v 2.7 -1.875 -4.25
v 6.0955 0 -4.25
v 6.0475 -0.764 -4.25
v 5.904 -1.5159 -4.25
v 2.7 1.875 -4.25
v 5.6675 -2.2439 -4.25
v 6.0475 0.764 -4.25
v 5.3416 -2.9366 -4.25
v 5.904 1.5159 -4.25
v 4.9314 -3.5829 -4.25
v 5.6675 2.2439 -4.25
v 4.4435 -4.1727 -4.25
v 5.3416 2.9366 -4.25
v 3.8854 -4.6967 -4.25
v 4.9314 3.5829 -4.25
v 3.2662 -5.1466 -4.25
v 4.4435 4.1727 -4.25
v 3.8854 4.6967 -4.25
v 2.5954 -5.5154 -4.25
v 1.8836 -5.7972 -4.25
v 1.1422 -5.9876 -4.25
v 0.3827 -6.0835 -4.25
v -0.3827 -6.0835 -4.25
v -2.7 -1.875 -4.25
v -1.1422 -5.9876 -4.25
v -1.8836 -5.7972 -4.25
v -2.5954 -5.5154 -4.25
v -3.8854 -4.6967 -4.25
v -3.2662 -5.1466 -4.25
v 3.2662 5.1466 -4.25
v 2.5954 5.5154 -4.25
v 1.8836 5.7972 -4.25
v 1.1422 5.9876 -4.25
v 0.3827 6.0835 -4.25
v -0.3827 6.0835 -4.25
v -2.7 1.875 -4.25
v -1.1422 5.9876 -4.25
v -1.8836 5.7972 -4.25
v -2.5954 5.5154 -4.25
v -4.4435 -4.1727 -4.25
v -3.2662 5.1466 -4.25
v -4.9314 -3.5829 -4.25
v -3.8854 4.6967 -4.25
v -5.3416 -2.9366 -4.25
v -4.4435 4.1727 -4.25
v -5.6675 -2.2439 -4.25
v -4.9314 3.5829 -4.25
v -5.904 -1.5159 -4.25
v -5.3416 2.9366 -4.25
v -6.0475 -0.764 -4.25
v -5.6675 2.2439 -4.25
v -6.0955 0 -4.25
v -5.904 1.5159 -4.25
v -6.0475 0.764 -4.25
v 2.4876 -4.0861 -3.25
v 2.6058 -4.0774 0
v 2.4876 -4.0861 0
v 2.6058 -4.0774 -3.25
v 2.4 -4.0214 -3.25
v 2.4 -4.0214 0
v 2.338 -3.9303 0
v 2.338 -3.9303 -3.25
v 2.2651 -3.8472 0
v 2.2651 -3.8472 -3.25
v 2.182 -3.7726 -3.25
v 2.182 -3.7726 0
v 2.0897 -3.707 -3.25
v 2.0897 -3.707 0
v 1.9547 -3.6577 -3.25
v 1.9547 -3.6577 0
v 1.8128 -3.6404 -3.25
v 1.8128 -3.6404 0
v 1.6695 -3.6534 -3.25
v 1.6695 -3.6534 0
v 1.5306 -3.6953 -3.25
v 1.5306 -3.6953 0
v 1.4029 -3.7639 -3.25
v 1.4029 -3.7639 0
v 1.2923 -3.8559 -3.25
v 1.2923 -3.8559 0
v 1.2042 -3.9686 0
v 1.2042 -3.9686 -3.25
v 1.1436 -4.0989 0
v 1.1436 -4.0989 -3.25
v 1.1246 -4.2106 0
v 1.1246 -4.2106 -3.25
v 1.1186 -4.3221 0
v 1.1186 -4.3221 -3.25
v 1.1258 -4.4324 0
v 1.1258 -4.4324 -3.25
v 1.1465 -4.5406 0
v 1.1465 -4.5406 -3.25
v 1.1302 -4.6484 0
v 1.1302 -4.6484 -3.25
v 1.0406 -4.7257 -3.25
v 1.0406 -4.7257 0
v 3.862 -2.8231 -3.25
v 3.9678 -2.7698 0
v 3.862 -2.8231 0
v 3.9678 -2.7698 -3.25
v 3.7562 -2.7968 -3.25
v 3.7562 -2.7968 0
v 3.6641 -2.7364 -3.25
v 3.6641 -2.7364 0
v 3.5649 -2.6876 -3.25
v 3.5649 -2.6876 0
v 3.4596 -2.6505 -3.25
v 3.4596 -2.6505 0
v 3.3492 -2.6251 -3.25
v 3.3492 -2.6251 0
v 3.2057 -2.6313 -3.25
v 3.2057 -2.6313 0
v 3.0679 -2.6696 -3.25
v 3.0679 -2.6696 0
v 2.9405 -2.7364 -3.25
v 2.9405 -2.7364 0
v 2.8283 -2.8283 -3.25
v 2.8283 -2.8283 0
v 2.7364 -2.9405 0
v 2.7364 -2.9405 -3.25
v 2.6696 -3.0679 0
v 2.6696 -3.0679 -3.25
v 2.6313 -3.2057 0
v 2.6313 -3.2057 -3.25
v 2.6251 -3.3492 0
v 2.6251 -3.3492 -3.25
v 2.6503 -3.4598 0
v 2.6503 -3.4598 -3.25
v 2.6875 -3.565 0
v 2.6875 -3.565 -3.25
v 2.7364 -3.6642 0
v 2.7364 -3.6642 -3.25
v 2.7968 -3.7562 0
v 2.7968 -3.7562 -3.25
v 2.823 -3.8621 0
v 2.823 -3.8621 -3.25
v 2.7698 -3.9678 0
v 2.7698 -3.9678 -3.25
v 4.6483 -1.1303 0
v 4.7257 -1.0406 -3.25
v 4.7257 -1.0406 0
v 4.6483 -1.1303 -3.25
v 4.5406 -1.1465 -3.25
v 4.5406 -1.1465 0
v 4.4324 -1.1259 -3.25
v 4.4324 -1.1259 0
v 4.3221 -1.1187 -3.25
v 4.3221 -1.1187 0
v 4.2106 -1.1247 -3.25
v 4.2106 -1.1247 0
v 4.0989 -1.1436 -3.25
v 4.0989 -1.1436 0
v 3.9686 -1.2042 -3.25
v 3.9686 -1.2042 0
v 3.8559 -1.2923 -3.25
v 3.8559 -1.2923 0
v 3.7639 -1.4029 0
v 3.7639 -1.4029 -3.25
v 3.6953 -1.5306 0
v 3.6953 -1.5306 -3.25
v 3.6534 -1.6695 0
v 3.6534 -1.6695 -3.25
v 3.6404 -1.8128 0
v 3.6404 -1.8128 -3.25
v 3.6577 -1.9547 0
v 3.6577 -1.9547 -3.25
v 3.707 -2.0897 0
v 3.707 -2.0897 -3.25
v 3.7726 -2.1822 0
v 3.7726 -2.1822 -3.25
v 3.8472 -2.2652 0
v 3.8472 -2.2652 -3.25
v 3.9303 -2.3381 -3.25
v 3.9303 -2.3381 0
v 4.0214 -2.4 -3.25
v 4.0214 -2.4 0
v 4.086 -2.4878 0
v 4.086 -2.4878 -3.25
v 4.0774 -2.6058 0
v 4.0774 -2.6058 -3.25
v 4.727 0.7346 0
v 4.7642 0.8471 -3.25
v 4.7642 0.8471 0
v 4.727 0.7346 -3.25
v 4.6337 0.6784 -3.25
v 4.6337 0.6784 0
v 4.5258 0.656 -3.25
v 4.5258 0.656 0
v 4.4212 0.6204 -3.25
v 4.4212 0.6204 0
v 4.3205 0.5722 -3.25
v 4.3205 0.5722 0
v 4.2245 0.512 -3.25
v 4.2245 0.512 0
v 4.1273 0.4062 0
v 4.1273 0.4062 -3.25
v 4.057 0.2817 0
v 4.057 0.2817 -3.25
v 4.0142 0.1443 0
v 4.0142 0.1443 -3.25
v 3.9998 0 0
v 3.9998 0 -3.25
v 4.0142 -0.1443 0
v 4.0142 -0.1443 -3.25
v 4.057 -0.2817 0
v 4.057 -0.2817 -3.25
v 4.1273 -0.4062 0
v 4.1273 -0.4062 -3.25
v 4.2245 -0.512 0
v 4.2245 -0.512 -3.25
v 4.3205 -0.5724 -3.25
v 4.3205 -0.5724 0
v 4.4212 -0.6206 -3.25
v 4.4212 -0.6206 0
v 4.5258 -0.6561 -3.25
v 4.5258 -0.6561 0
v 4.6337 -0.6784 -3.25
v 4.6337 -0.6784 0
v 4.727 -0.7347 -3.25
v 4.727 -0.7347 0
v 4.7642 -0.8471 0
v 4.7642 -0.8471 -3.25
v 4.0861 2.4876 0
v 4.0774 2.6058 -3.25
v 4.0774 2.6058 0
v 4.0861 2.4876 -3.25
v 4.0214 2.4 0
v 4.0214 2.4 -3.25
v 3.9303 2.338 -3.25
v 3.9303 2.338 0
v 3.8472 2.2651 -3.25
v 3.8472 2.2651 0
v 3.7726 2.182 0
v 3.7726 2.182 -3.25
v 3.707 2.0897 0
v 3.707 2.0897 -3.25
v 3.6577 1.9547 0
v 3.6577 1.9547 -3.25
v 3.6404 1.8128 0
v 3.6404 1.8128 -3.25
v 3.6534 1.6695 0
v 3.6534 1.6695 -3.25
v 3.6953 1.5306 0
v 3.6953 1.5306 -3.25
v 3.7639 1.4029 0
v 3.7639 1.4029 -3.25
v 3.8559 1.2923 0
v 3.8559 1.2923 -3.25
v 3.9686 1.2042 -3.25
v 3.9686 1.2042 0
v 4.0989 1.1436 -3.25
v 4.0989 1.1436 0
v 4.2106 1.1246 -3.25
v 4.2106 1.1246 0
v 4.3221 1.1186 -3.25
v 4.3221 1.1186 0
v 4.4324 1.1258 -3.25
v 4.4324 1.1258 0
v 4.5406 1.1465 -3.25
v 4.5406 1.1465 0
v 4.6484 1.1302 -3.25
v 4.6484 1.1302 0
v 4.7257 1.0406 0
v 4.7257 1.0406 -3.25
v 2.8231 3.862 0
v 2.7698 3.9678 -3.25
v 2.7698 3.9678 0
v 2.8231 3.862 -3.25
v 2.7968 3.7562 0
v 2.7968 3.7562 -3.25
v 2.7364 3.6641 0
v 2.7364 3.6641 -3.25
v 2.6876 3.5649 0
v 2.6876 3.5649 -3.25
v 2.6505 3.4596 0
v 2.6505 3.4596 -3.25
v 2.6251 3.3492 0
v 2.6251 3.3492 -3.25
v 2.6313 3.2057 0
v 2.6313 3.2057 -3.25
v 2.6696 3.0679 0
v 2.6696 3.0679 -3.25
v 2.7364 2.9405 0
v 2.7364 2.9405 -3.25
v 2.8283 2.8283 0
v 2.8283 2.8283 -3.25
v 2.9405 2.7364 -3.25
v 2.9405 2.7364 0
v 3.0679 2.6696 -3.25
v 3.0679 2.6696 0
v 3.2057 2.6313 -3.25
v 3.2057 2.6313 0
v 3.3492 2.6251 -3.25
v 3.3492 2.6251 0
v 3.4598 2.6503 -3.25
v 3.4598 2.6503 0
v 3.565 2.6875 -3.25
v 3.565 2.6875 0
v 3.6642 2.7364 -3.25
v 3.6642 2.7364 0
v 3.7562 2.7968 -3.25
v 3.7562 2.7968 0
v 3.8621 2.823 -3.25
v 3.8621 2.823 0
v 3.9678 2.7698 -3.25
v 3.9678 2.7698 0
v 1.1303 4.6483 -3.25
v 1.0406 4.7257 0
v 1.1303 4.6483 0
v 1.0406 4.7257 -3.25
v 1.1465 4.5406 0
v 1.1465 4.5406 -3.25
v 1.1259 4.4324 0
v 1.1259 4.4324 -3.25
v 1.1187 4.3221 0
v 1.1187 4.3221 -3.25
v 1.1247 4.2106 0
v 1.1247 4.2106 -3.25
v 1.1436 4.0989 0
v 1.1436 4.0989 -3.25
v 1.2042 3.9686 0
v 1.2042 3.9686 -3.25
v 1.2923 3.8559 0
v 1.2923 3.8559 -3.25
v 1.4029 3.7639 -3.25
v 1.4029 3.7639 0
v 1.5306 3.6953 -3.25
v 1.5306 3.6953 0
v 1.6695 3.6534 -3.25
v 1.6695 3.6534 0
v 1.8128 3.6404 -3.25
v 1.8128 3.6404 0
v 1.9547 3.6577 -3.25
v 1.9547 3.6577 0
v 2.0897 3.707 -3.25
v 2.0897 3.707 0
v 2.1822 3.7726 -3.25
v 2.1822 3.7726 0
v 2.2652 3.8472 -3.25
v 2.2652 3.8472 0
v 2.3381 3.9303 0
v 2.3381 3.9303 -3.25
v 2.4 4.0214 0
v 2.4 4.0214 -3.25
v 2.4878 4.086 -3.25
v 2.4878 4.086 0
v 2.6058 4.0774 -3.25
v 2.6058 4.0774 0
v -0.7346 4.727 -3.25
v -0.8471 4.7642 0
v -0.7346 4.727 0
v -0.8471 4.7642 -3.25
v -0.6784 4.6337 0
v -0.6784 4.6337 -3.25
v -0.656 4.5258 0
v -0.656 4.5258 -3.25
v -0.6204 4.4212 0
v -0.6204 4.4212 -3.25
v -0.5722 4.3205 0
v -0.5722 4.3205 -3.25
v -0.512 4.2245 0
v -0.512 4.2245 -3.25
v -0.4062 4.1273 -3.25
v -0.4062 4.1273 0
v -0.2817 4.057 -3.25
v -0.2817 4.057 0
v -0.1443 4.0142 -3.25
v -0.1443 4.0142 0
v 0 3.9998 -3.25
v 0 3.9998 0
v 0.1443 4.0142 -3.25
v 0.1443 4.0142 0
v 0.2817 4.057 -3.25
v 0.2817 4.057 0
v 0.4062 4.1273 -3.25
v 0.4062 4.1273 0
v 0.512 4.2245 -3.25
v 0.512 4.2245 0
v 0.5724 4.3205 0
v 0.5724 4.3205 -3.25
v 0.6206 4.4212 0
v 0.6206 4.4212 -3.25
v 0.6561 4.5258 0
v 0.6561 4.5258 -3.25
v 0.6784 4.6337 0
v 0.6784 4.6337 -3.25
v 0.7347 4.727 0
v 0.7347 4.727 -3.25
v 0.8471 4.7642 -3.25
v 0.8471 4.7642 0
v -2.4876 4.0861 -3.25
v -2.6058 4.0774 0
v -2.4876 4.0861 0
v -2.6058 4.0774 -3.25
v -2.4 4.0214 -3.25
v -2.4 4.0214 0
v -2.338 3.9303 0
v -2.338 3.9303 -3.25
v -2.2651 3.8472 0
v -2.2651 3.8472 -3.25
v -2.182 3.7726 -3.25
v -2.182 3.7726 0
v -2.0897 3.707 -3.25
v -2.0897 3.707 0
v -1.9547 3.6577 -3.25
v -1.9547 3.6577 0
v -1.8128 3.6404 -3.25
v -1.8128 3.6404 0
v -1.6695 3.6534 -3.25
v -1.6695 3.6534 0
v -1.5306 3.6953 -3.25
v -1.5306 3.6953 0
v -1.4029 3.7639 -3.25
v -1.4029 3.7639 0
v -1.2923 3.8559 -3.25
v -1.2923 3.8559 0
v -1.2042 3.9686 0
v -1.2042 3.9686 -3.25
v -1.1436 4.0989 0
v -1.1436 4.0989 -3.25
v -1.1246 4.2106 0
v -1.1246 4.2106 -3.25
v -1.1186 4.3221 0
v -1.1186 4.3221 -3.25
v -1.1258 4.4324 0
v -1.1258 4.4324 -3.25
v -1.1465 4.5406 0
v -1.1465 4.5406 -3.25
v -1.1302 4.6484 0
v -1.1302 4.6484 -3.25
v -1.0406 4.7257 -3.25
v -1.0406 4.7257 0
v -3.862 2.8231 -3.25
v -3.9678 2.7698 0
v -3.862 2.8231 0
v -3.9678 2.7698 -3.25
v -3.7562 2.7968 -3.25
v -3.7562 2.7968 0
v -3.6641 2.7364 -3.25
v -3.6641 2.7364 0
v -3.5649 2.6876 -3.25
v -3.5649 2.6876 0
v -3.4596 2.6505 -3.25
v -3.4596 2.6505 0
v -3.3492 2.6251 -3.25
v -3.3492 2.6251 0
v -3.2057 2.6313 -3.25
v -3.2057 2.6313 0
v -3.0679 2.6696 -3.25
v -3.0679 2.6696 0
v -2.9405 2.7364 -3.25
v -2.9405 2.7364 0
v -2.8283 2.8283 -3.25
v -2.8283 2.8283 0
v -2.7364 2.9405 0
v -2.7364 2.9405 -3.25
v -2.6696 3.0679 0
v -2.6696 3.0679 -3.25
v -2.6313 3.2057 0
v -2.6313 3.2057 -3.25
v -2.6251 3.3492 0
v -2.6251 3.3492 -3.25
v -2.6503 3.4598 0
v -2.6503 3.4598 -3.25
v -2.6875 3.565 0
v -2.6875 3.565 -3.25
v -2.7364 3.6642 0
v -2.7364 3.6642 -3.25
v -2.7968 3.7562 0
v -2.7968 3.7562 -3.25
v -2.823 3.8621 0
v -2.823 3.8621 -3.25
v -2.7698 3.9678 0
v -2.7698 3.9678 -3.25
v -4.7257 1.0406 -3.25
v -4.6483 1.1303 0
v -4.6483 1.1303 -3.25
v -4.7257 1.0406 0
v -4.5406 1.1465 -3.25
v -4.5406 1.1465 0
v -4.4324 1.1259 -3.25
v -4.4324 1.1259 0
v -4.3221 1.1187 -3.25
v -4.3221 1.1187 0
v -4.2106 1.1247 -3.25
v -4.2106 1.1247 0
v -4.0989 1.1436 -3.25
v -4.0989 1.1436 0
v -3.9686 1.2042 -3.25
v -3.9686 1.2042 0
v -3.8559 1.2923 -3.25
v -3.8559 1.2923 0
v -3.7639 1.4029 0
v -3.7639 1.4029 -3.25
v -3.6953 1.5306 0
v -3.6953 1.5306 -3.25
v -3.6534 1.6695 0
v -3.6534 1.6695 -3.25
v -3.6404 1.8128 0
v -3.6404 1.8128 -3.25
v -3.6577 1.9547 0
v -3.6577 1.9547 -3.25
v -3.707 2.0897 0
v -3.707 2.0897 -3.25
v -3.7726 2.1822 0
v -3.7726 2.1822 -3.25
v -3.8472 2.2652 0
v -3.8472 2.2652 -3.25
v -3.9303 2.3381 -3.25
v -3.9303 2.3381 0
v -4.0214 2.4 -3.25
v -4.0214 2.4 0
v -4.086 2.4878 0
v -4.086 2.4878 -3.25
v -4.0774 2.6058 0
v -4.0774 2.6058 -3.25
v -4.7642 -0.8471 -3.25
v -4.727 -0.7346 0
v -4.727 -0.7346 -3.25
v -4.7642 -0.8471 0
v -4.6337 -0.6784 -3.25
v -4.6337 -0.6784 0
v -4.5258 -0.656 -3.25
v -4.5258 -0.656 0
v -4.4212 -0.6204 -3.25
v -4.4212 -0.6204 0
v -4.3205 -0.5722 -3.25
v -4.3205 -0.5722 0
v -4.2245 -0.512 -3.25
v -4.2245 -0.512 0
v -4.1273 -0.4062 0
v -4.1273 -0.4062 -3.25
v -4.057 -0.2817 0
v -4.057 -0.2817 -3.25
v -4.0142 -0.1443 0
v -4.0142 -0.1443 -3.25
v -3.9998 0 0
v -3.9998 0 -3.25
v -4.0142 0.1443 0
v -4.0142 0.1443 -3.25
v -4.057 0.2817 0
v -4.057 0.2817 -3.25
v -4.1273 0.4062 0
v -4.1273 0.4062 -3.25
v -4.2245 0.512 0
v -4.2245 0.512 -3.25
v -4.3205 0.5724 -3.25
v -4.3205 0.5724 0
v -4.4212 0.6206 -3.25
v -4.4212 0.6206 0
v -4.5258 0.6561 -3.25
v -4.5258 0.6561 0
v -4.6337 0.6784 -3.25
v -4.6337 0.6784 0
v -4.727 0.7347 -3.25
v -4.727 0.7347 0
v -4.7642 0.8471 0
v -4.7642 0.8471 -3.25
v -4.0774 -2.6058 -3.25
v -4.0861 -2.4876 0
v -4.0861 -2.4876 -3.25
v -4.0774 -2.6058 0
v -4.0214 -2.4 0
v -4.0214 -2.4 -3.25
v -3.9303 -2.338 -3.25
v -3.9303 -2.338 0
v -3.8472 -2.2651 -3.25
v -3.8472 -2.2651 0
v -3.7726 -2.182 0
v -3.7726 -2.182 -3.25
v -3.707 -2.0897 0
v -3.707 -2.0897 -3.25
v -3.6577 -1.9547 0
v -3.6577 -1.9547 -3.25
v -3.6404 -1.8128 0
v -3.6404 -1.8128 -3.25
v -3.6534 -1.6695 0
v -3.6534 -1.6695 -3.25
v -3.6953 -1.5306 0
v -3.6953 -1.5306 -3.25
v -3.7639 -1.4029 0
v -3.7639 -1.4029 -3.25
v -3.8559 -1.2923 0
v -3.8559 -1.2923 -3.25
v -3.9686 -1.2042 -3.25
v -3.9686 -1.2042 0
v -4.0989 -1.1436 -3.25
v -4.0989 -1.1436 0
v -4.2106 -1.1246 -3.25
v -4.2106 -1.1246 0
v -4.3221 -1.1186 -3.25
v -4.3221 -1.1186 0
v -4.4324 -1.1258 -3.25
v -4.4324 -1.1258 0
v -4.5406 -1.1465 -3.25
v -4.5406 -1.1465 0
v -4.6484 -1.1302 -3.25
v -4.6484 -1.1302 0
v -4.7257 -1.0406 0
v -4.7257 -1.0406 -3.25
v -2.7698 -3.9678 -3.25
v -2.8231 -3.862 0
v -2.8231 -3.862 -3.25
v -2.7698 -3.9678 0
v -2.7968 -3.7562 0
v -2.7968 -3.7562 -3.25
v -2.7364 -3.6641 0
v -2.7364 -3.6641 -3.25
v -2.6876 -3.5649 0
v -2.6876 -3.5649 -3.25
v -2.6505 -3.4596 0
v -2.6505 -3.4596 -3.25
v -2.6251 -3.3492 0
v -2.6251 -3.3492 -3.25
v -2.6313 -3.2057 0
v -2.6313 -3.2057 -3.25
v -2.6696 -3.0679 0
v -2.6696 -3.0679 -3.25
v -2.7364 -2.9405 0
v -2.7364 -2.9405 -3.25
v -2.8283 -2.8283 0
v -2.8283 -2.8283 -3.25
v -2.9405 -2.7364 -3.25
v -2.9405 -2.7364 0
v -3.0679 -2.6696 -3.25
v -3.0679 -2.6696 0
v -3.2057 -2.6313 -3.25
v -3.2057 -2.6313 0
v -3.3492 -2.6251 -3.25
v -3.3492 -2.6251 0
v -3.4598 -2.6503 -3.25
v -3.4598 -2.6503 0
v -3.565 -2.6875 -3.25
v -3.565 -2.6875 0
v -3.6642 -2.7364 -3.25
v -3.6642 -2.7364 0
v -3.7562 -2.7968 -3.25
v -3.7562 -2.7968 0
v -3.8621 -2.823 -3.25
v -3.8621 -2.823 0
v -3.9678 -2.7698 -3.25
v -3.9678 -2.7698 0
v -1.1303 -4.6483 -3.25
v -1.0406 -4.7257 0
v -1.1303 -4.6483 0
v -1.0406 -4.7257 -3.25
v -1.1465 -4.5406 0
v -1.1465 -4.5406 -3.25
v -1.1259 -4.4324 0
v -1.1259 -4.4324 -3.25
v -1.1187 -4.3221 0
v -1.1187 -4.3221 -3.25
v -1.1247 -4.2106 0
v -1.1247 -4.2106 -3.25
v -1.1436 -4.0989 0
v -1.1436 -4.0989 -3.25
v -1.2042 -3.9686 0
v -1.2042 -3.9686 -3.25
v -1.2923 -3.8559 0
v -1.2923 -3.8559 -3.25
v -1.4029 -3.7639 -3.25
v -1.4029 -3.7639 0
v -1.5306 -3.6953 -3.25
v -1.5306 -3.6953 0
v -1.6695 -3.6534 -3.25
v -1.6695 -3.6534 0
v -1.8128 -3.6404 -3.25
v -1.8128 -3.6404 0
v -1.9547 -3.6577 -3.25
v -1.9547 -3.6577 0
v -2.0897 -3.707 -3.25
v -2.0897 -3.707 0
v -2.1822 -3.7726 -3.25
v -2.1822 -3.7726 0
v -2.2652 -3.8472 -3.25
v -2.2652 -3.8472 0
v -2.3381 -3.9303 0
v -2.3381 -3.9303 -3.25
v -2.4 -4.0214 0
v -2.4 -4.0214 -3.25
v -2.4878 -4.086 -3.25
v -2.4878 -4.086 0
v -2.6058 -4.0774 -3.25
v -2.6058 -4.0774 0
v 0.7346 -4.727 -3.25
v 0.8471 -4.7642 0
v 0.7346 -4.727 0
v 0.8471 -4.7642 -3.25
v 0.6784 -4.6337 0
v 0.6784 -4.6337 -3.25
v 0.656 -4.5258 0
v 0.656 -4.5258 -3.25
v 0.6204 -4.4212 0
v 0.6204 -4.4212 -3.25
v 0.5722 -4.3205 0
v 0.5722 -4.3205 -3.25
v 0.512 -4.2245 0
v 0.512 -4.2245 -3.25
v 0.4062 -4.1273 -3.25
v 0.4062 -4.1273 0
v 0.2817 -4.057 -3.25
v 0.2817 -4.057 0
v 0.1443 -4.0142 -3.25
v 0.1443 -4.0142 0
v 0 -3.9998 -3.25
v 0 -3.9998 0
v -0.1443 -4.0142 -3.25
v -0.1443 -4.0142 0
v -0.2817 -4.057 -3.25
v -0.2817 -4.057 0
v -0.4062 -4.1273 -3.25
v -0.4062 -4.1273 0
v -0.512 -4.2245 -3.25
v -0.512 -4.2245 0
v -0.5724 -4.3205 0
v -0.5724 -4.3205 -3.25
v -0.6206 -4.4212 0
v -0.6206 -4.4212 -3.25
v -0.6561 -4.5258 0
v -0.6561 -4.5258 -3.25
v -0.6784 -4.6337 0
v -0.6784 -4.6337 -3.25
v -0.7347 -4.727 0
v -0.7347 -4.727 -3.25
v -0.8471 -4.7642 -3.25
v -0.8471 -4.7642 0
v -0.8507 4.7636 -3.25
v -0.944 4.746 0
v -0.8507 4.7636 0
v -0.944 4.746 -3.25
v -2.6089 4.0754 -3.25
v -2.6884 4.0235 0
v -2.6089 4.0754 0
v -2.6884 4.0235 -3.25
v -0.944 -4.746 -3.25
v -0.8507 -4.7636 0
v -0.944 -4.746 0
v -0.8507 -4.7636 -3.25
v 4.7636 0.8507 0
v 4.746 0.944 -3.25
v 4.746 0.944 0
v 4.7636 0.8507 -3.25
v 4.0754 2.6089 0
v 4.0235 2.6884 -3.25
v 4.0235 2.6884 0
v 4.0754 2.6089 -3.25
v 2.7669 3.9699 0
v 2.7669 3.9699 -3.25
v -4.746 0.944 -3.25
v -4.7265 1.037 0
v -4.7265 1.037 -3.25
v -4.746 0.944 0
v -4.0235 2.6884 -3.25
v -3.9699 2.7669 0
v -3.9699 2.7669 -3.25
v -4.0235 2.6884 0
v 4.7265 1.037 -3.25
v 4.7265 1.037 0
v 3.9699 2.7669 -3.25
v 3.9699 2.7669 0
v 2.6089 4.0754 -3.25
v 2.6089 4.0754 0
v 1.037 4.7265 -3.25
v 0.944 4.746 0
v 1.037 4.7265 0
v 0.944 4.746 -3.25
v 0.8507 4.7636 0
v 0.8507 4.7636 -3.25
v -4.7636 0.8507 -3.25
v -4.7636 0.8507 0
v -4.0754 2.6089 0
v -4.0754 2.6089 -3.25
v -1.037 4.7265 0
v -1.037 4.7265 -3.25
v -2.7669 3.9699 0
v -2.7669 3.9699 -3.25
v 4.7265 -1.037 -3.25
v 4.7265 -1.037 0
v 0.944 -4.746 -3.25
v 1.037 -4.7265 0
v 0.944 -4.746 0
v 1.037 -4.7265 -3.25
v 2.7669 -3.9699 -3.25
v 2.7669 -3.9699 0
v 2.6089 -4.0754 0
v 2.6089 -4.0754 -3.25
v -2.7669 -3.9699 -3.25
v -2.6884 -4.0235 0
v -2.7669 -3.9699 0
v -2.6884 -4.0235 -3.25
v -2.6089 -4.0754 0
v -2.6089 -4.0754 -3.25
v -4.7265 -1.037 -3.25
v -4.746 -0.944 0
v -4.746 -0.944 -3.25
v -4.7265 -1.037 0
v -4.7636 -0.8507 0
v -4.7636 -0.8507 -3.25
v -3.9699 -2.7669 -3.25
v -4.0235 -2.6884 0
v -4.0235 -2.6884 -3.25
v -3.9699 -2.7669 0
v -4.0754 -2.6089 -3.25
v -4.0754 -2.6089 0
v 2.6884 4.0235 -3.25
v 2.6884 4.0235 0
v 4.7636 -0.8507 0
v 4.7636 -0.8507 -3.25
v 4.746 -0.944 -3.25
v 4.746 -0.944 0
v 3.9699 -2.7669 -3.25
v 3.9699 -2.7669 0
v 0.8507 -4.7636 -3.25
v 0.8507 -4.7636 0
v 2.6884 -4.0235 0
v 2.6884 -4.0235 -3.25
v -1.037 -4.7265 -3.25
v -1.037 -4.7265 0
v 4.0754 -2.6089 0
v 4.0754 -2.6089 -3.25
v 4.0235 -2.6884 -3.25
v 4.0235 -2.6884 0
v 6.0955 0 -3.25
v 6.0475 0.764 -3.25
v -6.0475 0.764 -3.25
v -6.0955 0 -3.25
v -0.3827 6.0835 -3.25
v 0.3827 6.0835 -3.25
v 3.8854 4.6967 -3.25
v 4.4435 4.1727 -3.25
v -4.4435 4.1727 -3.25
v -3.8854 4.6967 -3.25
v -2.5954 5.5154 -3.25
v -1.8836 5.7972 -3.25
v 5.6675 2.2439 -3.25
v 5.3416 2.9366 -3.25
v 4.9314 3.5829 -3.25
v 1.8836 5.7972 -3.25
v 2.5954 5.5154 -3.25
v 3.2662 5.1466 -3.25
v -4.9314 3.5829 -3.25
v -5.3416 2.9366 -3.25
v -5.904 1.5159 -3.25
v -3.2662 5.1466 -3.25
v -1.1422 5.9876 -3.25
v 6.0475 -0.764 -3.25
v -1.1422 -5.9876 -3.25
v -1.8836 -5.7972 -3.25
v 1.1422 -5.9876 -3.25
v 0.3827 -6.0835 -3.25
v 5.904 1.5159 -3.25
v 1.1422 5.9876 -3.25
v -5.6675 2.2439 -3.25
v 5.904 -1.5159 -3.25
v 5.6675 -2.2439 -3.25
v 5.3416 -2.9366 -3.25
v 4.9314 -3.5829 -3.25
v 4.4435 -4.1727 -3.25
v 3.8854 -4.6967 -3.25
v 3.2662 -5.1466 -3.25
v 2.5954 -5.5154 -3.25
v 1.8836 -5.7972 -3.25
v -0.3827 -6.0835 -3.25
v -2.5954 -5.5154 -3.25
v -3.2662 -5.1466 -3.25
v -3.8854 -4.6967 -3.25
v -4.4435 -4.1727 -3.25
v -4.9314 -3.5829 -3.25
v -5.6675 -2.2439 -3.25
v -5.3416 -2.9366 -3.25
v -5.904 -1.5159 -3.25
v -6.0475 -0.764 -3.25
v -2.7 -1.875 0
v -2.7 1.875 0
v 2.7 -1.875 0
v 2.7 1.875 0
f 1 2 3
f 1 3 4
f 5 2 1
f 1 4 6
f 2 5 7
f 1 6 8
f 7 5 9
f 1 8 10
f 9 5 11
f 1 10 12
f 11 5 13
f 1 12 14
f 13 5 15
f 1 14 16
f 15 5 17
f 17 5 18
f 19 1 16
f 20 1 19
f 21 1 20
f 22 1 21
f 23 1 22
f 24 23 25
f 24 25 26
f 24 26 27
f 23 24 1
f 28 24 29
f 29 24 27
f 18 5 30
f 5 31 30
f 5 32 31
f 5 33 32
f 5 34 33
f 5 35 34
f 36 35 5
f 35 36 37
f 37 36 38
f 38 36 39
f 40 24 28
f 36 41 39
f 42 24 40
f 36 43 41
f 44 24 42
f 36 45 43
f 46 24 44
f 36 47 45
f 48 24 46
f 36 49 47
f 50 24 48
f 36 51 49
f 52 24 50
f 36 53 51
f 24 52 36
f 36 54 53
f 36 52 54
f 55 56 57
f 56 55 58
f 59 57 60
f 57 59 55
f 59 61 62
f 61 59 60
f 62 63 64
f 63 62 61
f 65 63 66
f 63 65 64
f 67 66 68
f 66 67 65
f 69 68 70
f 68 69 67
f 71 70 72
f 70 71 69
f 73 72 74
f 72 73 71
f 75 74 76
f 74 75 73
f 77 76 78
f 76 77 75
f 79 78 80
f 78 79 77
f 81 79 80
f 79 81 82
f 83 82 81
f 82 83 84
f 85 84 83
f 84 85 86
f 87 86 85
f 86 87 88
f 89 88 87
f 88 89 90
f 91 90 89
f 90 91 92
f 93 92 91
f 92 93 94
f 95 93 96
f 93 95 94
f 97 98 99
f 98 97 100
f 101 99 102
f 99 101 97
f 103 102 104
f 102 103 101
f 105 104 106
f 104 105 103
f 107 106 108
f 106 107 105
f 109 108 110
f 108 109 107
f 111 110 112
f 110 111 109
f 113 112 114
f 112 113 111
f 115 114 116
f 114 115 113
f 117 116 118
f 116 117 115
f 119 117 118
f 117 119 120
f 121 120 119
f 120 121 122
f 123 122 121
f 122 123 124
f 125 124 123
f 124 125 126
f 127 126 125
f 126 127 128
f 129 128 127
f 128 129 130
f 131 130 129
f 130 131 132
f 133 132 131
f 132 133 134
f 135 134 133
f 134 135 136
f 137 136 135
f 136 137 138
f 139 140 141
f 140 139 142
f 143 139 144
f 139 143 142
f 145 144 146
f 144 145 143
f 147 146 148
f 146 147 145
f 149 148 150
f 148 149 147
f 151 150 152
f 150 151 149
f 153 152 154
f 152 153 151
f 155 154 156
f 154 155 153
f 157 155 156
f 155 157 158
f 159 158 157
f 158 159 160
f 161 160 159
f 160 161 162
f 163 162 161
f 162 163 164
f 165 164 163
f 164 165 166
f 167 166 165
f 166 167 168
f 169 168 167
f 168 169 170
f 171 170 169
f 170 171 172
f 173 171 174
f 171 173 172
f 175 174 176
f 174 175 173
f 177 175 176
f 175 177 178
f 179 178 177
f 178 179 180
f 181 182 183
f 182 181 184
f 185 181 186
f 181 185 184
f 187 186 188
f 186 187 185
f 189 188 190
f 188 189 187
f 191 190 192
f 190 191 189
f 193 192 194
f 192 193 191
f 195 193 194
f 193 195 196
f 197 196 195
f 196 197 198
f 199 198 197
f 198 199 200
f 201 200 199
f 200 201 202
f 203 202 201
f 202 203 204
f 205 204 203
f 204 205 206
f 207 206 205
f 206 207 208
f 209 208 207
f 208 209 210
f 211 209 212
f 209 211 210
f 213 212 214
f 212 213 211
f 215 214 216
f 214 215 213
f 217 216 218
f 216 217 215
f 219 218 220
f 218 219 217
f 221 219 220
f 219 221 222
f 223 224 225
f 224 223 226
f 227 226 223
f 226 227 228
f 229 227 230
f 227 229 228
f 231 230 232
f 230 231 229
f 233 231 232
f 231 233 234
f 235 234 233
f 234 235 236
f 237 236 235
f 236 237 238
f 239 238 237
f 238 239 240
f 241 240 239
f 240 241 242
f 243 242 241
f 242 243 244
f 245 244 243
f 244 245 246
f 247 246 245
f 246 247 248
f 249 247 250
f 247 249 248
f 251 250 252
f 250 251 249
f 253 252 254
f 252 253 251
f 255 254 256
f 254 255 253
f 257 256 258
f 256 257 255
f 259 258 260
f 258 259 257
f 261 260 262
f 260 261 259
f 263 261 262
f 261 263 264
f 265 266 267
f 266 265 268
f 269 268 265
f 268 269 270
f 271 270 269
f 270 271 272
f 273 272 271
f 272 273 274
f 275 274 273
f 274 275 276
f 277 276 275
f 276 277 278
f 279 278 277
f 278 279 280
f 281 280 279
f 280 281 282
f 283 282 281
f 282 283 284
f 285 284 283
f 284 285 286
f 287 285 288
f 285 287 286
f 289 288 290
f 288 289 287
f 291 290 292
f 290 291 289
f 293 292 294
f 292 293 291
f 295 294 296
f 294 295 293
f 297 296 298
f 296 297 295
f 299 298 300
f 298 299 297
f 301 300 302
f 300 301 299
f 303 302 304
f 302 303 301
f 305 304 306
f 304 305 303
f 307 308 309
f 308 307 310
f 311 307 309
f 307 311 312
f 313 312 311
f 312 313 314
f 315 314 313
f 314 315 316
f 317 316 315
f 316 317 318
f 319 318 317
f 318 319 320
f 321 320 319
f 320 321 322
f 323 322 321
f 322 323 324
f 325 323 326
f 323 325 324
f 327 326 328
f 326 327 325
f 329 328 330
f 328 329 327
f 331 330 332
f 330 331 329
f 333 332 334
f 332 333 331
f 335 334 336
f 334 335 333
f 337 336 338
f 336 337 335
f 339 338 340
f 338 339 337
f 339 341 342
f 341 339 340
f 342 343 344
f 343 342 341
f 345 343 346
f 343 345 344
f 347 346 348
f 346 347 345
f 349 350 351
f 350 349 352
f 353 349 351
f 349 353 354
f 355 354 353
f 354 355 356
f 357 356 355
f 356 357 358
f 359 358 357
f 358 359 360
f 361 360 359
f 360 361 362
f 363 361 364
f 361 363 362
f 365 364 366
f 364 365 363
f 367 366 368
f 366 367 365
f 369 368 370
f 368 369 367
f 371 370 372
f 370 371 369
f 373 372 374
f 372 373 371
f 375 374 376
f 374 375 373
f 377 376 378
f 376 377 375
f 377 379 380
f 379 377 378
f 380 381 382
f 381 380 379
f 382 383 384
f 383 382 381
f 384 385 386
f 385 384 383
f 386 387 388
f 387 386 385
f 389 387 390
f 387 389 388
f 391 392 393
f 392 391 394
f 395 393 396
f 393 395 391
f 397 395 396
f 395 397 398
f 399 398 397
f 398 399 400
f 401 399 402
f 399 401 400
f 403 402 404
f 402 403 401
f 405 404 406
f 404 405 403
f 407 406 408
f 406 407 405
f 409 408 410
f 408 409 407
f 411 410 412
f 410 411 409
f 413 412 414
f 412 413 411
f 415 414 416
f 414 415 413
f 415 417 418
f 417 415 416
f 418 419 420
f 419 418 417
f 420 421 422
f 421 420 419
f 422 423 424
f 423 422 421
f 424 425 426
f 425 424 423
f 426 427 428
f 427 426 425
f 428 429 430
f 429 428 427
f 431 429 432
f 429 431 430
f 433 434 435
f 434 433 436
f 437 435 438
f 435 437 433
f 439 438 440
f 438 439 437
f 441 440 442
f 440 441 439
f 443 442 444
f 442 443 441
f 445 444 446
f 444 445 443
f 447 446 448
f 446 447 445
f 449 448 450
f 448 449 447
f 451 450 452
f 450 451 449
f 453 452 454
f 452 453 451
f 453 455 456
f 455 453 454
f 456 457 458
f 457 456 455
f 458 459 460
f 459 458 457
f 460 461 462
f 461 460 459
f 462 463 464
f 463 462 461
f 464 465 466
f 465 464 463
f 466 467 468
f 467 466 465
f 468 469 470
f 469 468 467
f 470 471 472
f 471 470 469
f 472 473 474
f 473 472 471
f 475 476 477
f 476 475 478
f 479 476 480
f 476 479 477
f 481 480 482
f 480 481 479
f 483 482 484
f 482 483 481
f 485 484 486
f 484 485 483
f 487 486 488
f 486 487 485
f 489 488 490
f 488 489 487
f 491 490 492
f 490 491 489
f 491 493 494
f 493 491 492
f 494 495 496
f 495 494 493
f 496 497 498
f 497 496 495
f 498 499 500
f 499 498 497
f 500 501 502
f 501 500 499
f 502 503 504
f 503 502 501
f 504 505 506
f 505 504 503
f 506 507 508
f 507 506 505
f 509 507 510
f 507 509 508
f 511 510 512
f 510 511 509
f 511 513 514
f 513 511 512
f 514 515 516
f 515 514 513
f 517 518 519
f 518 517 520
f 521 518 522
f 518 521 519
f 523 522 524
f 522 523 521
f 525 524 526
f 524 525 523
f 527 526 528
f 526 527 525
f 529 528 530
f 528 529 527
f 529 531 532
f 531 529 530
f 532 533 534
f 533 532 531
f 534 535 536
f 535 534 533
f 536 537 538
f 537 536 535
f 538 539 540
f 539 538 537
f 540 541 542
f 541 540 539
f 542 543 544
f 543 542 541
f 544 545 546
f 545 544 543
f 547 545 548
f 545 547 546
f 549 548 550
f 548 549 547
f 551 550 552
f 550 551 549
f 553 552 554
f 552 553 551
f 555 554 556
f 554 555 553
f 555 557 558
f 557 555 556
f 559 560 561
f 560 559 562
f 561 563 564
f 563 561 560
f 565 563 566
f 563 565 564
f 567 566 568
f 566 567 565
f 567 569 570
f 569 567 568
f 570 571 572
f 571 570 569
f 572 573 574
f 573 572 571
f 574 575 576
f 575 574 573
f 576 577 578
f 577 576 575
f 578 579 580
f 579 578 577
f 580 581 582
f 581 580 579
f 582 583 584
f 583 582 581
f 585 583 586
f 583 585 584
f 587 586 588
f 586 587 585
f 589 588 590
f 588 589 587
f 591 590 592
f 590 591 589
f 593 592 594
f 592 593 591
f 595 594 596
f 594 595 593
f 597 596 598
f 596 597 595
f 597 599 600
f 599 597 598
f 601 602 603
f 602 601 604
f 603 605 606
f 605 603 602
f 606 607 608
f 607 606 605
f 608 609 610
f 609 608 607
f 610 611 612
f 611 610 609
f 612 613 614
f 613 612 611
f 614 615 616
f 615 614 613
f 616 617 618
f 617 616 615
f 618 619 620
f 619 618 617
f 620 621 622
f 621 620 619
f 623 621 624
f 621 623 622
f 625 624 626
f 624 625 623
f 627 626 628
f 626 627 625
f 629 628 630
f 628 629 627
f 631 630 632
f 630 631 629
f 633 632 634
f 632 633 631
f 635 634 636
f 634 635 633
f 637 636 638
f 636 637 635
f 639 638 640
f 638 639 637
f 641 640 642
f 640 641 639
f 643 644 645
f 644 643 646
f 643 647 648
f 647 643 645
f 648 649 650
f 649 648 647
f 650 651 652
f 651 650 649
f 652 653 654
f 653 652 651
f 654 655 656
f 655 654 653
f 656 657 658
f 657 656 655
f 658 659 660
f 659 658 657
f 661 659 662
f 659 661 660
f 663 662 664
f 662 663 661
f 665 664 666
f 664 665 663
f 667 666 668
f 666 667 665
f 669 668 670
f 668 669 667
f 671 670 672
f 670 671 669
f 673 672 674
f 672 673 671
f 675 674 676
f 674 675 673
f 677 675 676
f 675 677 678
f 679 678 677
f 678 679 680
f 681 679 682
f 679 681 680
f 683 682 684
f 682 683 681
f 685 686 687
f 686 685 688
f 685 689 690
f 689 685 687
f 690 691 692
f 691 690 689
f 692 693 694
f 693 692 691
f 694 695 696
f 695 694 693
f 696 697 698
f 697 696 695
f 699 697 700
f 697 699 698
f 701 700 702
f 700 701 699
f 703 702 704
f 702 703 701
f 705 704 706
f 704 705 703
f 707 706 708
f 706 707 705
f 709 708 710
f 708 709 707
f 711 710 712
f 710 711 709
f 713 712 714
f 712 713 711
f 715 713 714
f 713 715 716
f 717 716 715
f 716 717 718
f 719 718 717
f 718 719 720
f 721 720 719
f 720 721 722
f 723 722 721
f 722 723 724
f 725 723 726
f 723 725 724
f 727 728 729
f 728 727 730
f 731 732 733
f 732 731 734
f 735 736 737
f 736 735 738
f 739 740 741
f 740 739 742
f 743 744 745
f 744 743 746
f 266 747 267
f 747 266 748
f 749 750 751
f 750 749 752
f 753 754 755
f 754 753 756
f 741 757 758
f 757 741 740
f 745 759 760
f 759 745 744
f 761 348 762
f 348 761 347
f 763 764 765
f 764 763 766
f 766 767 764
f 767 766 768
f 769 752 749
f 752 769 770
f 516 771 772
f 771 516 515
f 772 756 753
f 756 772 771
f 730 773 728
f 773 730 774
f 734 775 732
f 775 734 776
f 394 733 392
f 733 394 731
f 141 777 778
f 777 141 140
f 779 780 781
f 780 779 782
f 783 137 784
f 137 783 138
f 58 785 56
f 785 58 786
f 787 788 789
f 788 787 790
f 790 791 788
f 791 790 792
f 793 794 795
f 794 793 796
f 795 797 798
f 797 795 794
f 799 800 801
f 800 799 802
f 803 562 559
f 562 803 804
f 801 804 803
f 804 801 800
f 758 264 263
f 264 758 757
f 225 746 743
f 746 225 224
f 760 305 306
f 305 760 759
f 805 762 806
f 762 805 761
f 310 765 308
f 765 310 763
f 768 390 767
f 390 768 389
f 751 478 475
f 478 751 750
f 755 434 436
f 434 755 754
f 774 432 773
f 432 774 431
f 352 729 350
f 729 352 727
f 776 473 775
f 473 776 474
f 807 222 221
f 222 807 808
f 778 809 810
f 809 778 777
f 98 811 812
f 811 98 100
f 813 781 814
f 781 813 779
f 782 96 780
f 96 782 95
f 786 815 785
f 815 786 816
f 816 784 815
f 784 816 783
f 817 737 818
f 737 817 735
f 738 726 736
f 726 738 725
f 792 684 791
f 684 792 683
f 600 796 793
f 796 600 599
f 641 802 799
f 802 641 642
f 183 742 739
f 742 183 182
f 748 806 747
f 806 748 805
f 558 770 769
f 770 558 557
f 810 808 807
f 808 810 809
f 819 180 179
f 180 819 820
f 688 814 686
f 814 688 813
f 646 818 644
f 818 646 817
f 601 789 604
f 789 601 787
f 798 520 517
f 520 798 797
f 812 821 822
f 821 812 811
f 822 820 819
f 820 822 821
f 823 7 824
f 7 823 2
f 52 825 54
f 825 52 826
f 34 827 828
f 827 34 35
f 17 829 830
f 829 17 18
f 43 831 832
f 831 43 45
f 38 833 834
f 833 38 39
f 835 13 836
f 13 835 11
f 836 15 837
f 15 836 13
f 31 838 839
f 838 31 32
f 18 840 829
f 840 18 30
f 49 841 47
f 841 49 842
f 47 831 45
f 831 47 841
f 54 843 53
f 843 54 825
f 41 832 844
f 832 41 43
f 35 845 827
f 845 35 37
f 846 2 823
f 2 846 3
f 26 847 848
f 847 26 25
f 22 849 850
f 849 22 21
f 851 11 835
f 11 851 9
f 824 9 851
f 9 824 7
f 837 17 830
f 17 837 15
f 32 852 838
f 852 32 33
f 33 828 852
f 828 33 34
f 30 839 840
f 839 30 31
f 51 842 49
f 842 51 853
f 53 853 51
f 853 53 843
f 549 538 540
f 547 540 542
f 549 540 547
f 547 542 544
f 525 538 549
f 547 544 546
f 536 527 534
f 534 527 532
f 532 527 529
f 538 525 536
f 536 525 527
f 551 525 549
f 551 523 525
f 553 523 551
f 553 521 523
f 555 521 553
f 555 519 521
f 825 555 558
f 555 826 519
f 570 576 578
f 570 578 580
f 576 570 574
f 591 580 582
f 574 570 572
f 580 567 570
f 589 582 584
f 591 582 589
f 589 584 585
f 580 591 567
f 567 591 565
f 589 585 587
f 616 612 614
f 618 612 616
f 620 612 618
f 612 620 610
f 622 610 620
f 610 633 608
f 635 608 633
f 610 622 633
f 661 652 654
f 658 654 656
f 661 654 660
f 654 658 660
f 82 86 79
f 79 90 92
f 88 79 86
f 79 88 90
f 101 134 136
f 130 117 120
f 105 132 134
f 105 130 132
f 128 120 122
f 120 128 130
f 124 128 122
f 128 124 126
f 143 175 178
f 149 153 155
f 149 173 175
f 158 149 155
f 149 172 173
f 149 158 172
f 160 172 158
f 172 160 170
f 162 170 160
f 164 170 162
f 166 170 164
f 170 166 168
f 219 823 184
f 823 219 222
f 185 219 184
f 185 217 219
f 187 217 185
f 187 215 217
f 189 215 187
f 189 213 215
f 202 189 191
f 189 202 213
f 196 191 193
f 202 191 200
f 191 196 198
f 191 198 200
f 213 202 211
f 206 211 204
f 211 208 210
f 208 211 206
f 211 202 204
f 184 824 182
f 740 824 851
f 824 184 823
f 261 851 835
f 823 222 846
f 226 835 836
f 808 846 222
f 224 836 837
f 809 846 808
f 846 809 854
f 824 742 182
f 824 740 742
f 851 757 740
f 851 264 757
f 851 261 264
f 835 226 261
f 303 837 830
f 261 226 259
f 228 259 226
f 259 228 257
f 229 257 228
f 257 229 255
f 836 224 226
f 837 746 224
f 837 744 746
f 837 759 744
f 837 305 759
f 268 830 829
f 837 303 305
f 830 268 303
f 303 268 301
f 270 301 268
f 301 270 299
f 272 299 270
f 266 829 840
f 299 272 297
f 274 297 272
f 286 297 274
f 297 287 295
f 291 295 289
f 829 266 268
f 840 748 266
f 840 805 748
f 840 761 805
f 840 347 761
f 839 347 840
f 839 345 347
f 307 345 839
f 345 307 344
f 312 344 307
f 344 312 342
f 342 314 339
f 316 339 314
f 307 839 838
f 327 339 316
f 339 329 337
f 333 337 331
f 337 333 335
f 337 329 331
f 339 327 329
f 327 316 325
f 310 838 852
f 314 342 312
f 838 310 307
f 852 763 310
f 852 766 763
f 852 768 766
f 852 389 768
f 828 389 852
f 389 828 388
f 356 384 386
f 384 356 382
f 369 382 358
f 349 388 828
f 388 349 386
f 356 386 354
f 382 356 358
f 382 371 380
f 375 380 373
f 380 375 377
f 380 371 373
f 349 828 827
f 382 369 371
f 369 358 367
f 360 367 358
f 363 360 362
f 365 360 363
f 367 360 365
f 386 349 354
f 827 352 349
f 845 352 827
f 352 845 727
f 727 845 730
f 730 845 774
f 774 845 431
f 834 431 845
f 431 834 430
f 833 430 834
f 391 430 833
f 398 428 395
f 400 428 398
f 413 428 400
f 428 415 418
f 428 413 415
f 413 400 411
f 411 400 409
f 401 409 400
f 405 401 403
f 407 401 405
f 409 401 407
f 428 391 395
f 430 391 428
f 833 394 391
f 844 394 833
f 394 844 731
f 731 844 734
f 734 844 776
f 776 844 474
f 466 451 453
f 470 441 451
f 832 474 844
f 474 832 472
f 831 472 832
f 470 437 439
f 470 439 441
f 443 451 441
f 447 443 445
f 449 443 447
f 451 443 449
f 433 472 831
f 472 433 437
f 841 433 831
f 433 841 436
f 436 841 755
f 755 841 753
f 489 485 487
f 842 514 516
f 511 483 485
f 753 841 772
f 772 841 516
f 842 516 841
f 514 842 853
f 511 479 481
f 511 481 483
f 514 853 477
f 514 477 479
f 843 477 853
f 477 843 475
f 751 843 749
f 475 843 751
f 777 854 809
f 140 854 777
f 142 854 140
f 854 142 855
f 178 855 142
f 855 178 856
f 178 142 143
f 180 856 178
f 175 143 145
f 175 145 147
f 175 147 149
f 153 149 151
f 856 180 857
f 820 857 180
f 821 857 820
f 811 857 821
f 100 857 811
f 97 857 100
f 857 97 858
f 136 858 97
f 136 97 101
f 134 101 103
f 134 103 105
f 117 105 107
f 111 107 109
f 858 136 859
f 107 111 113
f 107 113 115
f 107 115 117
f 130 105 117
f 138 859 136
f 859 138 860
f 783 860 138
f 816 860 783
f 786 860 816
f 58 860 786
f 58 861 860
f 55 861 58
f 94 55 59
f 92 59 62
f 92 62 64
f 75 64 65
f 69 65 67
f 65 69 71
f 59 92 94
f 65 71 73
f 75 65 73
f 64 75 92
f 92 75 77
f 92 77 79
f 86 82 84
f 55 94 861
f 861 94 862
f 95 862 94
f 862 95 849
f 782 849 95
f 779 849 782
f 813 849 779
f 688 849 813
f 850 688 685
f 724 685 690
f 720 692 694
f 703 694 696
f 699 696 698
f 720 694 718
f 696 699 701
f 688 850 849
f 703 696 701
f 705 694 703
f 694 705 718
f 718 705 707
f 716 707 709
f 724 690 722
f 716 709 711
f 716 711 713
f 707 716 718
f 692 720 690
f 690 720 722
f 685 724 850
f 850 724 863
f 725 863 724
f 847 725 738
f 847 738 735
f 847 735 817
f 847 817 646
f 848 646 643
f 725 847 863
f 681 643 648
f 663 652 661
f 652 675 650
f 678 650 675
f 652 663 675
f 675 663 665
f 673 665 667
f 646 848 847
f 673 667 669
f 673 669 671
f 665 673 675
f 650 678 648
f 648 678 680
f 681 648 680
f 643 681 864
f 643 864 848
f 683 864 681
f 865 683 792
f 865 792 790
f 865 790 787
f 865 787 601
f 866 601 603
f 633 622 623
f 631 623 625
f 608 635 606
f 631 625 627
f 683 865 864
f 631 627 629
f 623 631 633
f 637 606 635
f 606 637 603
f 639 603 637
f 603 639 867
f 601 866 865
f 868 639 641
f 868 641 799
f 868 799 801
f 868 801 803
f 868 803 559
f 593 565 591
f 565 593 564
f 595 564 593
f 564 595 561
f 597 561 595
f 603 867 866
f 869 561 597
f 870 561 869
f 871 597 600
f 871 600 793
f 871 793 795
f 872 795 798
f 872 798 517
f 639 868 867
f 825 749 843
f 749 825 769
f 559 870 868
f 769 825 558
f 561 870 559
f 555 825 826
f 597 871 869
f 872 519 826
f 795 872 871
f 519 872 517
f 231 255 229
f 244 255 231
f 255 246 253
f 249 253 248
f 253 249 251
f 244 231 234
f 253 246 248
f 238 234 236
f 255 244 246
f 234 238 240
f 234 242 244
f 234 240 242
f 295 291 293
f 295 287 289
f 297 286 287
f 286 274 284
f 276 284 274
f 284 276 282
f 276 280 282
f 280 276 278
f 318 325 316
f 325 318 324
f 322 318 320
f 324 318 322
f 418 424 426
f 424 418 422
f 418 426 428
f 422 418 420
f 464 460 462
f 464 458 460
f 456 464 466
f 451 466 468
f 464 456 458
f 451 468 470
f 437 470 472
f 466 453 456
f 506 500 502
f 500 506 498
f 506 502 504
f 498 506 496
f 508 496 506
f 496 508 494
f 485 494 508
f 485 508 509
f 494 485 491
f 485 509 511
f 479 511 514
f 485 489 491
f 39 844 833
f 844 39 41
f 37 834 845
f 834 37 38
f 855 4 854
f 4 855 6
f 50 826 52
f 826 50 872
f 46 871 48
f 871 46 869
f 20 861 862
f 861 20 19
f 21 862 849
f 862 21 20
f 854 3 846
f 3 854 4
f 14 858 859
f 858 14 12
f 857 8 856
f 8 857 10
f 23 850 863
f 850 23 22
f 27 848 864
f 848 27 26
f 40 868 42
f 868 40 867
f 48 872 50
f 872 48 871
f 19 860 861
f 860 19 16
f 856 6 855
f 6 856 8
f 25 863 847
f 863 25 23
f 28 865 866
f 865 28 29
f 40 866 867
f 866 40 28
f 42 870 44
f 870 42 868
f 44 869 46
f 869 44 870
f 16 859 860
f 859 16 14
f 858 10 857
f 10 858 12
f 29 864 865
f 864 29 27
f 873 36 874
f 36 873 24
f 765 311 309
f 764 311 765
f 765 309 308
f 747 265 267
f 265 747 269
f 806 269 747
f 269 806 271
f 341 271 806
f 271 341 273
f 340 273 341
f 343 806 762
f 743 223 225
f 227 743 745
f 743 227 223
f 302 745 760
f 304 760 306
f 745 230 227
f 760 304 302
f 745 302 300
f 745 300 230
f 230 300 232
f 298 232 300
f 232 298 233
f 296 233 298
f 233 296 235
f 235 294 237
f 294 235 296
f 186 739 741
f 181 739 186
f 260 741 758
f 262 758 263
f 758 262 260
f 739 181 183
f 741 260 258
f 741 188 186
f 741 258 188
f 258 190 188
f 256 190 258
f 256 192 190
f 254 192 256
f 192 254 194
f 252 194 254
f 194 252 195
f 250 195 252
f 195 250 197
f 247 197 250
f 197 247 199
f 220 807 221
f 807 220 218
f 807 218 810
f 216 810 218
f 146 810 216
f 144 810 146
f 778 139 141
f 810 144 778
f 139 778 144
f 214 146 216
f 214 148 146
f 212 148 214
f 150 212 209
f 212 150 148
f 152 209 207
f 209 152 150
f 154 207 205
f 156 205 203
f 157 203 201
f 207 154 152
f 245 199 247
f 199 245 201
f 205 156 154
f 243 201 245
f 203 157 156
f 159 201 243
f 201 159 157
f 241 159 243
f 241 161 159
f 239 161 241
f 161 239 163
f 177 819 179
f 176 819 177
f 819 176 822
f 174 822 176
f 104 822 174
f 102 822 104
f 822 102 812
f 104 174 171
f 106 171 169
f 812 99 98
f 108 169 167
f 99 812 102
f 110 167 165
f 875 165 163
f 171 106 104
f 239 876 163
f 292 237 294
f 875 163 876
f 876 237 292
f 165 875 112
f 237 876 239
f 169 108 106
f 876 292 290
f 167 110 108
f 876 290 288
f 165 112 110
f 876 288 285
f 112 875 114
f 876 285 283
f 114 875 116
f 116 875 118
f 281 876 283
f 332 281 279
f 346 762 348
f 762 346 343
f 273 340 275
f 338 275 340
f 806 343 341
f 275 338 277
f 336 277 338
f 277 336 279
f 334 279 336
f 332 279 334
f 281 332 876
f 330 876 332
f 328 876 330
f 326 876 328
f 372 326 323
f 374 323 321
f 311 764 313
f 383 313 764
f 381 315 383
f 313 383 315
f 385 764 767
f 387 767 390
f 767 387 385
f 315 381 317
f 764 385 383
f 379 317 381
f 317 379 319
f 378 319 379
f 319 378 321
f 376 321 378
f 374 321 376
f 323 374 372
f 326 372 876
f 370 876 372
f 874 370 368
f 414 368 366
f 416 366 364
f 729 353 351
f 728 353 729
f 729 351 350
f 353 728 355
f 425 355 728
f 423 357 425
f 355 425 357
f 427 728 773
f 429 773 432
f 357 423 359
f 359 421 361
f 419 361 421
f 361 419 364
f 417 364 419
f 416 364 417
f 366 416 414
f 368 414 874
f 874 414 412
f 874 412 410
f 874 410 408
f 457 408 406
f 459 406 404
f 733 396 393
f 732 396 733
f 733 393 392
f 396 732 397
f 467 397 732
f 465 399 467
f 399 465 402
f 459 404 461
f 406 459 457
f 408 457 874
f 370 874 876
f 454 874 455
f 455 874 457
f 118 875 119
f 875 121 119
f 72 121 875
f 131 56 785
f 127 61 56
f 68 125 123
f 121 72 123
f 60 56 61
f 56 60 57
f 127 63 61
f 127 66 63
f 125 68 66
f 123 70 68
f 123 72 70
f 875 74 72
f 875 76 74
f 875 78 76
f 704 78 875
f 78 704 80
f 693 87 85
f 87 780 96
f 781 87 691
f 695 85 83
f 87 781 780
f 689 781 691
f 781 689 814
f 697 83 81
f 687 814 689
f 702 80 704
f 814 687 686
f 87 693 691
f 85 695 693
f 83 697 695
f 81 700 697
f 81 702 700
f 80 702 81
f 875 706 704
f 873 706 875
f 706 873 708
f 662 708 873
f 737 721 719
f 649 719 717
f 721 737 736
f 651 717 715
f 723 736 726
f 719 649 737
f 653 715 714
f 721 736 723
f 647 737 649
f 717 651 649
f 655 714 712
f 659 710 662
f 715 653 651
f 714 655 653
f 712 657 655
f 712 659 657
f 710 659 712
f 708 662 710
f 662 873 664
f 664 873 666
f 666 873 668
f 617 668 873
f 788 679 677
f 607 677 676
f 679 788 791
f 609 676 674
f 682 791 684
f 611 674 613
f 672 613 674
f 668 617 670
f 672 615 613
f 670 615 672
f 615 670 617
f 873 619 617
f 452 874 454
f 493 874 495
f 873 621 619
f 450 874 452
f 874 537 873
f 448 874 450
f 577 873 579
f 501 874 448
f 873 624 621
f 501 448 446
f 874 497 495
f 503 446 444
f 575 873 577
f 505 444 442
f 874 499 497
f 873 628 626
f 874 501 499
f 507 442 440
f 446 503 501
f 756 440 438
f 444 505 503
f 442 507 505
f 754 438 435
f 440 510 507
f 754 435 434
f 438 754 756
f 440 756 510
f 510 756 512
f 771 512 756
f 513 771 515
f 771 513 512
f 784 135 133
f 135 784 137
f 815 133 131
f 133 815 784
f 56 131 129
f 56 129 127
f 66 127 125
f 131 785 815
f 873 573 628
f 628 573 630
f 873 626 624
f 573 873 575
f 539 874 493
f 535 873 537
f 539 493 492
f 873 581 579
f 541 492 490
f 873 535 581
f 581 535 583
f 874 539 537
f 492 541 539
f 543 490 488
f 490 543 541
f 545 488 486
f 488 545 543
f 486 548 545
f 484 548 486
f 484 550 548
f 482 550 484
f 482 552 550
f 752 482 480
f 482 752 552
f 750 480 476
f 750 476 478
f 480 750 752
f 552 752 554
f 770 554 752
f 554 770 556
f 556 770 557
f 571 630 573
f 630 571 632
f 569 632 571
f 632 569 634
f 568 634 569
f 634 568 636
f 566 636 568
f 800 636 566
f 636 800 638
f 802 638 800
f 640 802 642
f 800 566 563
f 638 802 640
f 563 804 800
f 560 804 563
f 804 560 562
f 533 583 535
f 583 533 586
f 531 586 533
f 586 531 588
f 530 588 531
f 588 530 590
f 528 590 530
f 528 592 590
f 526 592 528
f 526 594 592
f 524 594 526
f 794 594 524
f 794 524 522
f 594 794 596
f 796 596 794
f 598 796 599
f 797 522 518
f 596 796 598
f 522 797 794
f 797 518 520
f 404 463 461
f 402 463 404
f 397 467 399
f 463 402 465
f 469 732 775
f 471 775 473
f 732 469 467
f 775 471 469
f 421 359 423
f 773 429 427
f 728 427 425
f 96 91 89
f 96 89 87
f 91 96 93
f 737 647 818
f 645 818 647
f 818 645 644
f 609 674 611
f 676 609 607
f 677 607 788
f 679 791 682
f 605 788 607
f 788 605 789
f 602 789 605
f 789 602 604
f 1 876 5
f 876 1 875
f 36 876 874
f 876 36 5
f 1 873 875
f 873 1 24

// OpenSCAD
$fn = 50;
use <C:/gh/oomlout_opsc_version_3/pulley_gt2.scad>


difference() {
	union() {
		*color(alpha = 1.0000000000, c = "gray") {
			translate(v = [0, 7, 0]) {
				linear_extrude(height = 1) {
					text(font = "Arial:style=Bold", halign = "center", size = 4.5000000000, text = "COMMENT gear main", valign = "center");
				}
			}
		}
		translate(v = [0, 0, -4.2500000000]) {
			pulley_gt2(depth = 8.5000000000, number_of_teeth = 16);
		}
		translate(v = [0, 0, -4.2500000000]) {
			cylinder(h = 1, r = 6.0955414013);
		}
		translate(v = [0, 0, 3.2500000000]) {
			cylinder(h = 1, r = 6.0955414013);
		}
	}
	union() {
		translate(v = [0, 0, 2]) {
			rotate(a = [0, 0, 0]) {
				difference() {
					union() {
						#translate(v = [0, 0, -12.0000000000]) {
							cylinder(h = 12, r = 0.7500000000);
						}
						#translate(v = [0, 0, -12.0000000000]) {
							cylinder(h = 12, r = 1.0000000000);
						}
						#cylinder(h = 1.3000000000, r = 2.5000000000);
						#translate(v = [0, 0, -12.0000000000]) {
							cylinder(h = 12, r = 0.7500000000);
						}
					}
					union();
				}
			}
		}
		*color(alpha = 1.0000000000, c = "gray") {
			translate(v = [0, 7, 0]) {
				linear_extrude(height = 1) {
					text(font = "Arial:style=Bold", halign = "center", size = 4.5000000000, text = "COMMENT holes main", valign = "center");
				}
			}
		}
		#translate(v = [-2.7000000000, -1.8750000000, -6]) {
			cube(size = [5.4000000000, 3.7500000000, 6]);
		}
		translate(v = [-250.0000000000, -250.0000000000, 0]) {
			cube(size = [500, 500, 500]);
		}
		translate(v = [-250.0000000000, -250.0000000000, 0]) {
			cube(size = [500, 500, 500]);
		}
		translate(v = [-250.0000000000, -250.0000000000, 0]) {
			cube(size = [500, 500, 500]);
		}
	}
}
